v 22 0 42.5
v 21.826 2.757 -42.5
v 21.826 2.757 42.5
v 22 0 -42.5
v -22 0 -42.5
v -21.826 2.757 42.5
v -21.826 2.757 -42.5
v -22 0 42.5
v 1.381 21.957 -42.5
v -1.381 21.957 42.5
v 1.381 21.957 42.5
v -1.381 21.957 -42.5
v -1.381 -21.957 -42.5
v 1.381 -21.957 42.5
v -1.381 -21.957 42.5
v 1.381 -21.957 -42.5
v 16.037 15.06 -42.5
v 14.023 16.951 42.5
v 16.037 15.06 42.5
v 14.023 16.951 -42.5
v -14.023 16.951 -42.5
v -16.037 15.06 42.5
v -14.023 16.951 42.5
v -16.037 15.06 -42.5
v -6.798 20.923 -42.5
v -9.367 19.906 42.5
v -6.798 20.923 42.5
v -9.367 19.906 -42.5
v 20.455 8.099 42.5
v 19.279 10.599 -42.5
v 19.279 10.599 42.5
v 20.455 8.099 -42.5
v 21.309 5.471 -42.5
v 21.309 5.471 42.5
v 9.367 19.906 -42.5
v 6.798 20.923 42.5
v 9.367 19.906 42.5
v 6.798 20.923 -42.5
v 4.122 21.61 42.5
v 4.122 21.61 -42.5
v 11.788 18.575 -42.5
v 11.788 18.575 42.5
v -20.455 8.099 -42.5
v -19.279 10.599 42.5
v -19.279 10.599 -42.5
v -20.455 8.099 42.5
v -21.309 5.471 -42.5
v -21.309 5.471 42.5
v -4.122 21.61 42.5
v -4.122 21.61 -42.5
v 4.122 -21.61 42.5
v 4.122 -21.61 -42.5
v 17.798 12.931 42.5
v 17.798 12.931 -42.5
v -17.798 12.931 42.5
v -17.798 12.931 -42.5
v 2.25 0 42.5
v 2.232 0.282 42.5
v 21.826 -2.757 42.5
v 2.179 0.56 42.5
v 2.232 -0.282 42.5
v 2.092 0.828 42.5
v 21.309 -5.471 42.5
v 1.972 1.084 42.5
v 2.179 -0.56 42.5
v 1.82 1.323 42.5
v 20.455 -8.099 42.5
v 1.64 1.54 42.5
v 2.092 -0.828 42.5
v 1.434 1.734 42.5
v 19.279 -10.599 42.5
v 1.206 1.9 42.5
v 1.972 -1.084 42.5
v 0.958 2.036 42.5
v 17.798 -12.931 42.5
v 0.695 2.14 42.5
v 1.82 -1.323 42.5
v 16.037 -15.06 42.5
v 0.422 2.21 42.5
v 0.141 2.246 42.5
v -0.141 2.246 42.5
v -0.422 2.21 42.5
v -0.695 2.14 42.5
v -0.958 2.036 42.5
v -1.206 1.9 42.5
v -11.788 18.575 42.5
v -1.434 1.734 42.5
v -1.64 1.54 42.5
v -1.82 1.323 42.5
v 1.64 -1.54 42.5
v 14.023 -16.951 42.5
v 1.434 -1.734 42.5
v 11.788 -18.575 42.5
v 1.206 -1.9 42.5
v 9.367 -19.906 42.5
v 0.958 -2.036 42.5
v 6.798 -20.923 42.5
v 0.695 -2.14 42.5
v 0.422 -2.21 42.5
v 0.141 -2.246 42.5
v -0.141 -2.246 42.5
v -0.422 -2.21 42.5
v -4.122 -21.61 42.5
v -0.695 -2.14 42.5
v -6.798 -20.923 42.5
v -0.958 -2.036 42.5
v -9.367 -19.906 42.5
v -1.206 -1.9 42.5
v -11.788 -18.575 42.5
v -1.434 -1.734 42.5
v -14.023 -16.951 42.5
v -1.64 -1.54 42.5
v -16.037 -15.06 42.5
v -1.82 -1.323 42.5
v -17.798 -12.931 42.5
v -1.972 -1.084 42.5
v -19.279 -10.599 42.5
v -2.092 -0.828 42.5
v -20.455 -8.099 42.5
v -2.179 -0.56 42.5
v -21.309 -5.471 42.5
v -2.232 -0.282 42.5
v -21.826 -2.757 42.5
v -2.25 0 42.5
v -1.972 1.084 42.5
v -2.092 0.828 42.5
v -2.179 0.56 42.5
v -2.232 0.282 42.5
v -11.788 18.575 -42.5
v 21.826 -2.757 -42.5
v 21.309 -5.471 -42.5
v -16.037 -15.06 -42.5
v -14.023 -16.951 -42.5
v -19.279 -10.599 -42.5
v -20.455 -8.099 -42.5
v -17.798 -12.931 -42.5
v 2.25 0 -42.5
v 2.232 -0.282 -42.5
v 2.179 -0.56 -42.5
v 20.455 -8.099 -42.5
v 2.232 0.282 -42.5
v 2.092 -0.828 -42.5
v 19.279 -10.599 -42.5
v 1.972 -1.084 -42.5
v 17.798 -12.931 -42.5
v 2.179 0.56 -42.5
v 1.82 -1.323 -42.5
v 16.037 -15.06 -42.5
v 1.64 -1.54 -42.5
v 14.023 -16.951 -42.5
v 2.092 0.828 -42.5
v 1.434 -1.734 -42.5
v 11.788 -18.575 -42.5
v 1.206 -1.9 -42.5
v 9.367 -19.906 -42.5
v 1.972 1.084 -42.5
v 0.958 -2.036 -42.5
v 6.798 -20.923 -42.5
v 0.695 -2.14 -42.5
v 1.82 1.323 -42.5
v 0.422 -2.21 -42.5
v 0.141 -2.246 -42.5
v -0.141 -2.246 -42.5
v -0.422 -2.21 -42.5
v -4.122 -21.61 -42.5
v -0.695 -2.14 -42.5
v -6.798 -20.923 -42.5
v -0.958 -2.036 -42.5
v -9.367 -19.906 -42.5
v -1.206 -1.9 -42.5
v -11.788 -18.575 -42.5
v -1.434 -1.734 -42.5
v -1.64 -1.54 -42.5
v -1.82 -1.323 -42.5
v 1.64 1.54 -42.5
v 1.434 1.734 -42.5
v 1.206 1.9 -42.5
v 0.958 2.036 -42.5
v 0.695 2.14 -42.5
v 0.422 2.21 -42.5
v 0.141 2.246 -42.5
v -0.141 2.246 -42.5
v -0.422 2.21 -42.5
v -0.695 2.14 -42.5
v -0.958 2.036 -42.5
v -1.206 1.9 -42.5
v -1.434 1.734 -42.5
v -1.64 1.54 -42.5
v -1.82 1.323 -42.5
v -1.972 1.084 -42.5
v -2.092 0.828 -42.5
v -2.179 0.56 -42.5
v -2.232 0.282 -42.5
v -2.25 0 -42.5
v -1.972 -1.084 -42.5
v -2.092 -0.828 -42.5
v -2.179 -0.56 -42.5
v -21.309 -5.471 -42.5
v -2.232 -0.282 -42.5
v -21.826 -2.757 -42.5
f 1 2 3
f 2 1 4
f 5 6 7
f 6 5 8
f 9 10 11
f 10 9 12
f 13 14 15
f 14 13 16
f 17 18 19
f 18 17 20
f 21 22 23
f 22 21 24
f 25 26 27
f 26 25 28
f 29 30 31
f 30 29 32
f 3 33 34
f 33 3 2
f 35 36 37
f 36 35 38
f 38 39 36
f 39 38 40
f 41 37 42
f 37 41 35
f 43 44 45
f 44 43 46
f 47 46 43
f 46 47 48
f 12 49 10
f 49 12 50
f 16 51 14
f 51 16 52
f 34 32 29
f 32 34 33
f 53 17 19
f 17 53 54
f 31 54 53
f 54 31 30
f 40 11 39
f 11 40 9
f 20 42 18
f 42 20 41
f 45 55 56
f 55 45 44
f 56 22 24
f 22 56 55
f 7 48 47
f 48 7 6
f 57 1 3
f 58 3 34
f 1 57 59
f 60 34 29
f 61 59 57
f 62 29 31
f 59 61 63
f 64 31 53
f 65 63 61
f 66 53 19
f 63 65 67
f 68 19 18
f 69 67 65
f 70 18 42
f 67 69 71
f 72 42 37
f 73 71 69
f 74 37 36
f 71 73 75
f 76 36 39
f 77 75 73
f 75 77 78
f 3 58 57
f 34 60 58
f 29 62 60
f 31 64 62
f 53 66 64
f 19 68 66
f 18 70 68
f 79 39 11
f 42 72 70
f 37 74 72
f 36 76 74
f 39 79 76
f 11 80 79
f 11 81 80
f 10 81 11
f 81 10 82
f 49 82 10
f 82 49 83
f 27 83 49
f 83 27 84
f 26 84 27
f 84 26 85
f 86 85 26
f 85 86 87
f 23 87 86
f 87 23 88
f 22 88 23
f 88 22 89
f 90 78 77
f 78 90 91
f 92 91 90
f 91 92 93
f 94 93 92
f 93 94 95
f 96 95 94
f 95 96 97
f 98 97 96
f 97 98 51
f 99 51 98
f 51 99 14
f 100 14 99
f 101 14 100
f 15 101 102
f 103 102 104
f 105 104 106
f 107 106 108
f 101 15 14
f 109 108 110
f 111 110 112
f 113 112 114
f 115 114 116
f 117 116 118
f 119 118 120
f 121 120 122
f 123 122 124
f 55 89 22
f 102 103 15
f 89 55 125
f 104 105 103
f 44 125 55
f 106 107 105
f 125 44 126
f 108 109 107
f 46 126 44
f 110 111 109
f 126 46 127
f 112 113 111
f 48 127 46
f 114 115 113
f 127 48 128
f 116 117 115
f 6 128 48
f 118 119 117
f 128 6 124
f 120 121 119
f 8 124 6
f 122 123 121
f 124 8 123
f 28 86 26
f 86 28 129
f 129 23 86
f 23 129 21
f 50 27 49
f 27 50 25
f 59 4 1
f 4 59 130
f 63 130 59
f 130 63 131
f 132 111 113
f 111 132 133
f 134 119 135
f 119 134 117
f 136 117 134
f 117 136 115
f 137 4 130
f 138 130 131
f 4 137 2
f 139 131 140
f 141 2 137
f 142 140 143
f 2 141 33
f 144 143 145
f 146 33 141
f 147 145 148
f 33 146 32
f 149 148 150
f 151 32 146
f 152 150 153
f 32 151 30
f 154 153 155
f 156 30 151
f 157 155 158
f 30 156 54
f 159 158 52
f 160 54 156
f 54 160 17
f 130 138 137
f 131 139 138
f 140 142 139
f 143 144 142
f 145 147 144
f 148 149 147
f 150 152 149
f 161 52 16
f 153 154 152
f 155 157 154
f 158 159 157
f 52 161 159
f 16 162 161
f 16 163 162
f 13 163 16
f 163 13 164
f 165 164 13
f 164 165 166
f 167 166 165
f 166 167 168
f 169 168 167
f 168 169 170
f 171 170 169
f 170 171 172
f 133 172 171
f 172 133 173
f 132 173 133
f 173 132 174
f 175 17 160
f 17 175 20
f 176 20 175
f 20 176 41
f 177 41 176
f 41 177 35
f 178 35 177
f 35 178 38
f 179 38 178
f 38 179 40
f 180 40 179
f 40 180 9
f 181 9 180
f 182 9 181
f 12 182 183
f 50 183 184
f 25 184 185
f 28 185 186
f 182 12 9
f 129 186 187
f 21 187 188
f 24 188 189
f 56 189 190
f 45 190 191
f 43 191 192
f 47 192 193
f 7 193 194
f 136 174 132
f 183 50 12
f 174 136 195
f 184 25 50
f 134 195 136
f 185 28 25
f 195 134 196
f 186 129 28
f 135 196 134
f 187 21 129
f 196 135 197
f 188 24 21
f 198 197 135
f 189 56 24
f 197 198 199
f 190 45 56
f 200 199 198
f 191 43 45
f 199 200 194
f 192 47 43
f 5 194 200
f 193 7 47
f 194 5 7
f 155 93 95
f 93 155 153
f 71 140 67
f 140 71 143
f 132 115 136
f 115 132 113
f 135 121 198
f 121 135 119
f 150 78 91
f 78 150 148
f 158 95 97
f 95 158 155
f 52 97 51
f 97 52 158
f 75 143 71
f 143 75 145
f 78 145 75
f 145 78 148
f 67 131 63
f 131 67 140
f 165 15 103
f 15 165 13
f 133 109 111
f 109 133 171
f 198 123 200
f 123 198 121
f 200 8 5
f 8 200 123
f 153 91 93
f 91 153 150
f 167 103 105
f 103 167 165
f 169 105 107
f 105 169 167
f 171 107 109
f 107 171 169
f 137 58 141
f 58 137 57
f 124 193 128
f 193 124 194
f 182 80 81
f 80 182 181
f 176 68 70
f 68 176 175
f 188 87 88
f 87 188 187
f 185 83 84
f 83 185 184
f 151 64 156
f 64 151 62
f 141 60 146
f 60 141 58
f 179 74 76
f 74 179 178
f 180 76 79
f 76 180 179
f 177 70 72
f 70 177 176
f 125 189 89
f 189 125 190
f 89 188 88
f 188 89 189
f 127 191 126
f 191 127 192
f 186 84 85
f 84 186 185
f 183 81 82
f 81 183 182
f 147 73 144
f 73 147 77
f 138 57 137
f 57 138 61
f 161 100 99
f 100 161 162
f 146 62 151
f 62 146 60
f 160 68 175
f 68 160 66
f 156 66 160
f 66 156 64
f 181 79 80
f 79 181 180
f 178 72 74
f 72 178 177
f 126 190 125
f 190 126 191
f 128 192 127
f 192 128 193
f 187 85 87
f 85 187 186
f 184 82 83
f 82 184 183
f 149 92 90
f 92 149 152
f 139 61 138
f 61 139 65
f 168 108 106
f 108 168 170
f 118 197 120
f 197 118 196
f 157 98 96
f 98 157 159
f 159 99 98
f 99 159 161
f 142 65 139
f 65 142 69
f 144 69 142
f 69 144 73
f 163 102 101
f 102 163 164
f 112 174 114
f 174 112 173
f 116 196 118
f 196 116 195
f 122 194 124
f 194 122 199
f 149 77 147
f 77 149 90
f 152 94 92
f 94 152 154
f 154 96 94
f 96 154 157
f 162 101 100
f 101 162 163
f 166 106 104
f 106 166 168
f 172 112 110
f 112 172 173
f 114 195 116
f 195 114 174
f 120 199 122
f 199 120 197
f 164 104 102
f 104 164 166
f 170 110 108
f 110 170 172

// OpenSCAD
$fn = 50;


difference() {
	union() {
		translate(v = [0, 0, -42.5000000000]) {
			cylinder(h = 85, r = 22.0000000000);
		}
	}
	union() {
		translate(v = [0, 0, -100.0000000000]) {
			cylinder(h = 200, r = 2.2500000000);
		}
	}
}
